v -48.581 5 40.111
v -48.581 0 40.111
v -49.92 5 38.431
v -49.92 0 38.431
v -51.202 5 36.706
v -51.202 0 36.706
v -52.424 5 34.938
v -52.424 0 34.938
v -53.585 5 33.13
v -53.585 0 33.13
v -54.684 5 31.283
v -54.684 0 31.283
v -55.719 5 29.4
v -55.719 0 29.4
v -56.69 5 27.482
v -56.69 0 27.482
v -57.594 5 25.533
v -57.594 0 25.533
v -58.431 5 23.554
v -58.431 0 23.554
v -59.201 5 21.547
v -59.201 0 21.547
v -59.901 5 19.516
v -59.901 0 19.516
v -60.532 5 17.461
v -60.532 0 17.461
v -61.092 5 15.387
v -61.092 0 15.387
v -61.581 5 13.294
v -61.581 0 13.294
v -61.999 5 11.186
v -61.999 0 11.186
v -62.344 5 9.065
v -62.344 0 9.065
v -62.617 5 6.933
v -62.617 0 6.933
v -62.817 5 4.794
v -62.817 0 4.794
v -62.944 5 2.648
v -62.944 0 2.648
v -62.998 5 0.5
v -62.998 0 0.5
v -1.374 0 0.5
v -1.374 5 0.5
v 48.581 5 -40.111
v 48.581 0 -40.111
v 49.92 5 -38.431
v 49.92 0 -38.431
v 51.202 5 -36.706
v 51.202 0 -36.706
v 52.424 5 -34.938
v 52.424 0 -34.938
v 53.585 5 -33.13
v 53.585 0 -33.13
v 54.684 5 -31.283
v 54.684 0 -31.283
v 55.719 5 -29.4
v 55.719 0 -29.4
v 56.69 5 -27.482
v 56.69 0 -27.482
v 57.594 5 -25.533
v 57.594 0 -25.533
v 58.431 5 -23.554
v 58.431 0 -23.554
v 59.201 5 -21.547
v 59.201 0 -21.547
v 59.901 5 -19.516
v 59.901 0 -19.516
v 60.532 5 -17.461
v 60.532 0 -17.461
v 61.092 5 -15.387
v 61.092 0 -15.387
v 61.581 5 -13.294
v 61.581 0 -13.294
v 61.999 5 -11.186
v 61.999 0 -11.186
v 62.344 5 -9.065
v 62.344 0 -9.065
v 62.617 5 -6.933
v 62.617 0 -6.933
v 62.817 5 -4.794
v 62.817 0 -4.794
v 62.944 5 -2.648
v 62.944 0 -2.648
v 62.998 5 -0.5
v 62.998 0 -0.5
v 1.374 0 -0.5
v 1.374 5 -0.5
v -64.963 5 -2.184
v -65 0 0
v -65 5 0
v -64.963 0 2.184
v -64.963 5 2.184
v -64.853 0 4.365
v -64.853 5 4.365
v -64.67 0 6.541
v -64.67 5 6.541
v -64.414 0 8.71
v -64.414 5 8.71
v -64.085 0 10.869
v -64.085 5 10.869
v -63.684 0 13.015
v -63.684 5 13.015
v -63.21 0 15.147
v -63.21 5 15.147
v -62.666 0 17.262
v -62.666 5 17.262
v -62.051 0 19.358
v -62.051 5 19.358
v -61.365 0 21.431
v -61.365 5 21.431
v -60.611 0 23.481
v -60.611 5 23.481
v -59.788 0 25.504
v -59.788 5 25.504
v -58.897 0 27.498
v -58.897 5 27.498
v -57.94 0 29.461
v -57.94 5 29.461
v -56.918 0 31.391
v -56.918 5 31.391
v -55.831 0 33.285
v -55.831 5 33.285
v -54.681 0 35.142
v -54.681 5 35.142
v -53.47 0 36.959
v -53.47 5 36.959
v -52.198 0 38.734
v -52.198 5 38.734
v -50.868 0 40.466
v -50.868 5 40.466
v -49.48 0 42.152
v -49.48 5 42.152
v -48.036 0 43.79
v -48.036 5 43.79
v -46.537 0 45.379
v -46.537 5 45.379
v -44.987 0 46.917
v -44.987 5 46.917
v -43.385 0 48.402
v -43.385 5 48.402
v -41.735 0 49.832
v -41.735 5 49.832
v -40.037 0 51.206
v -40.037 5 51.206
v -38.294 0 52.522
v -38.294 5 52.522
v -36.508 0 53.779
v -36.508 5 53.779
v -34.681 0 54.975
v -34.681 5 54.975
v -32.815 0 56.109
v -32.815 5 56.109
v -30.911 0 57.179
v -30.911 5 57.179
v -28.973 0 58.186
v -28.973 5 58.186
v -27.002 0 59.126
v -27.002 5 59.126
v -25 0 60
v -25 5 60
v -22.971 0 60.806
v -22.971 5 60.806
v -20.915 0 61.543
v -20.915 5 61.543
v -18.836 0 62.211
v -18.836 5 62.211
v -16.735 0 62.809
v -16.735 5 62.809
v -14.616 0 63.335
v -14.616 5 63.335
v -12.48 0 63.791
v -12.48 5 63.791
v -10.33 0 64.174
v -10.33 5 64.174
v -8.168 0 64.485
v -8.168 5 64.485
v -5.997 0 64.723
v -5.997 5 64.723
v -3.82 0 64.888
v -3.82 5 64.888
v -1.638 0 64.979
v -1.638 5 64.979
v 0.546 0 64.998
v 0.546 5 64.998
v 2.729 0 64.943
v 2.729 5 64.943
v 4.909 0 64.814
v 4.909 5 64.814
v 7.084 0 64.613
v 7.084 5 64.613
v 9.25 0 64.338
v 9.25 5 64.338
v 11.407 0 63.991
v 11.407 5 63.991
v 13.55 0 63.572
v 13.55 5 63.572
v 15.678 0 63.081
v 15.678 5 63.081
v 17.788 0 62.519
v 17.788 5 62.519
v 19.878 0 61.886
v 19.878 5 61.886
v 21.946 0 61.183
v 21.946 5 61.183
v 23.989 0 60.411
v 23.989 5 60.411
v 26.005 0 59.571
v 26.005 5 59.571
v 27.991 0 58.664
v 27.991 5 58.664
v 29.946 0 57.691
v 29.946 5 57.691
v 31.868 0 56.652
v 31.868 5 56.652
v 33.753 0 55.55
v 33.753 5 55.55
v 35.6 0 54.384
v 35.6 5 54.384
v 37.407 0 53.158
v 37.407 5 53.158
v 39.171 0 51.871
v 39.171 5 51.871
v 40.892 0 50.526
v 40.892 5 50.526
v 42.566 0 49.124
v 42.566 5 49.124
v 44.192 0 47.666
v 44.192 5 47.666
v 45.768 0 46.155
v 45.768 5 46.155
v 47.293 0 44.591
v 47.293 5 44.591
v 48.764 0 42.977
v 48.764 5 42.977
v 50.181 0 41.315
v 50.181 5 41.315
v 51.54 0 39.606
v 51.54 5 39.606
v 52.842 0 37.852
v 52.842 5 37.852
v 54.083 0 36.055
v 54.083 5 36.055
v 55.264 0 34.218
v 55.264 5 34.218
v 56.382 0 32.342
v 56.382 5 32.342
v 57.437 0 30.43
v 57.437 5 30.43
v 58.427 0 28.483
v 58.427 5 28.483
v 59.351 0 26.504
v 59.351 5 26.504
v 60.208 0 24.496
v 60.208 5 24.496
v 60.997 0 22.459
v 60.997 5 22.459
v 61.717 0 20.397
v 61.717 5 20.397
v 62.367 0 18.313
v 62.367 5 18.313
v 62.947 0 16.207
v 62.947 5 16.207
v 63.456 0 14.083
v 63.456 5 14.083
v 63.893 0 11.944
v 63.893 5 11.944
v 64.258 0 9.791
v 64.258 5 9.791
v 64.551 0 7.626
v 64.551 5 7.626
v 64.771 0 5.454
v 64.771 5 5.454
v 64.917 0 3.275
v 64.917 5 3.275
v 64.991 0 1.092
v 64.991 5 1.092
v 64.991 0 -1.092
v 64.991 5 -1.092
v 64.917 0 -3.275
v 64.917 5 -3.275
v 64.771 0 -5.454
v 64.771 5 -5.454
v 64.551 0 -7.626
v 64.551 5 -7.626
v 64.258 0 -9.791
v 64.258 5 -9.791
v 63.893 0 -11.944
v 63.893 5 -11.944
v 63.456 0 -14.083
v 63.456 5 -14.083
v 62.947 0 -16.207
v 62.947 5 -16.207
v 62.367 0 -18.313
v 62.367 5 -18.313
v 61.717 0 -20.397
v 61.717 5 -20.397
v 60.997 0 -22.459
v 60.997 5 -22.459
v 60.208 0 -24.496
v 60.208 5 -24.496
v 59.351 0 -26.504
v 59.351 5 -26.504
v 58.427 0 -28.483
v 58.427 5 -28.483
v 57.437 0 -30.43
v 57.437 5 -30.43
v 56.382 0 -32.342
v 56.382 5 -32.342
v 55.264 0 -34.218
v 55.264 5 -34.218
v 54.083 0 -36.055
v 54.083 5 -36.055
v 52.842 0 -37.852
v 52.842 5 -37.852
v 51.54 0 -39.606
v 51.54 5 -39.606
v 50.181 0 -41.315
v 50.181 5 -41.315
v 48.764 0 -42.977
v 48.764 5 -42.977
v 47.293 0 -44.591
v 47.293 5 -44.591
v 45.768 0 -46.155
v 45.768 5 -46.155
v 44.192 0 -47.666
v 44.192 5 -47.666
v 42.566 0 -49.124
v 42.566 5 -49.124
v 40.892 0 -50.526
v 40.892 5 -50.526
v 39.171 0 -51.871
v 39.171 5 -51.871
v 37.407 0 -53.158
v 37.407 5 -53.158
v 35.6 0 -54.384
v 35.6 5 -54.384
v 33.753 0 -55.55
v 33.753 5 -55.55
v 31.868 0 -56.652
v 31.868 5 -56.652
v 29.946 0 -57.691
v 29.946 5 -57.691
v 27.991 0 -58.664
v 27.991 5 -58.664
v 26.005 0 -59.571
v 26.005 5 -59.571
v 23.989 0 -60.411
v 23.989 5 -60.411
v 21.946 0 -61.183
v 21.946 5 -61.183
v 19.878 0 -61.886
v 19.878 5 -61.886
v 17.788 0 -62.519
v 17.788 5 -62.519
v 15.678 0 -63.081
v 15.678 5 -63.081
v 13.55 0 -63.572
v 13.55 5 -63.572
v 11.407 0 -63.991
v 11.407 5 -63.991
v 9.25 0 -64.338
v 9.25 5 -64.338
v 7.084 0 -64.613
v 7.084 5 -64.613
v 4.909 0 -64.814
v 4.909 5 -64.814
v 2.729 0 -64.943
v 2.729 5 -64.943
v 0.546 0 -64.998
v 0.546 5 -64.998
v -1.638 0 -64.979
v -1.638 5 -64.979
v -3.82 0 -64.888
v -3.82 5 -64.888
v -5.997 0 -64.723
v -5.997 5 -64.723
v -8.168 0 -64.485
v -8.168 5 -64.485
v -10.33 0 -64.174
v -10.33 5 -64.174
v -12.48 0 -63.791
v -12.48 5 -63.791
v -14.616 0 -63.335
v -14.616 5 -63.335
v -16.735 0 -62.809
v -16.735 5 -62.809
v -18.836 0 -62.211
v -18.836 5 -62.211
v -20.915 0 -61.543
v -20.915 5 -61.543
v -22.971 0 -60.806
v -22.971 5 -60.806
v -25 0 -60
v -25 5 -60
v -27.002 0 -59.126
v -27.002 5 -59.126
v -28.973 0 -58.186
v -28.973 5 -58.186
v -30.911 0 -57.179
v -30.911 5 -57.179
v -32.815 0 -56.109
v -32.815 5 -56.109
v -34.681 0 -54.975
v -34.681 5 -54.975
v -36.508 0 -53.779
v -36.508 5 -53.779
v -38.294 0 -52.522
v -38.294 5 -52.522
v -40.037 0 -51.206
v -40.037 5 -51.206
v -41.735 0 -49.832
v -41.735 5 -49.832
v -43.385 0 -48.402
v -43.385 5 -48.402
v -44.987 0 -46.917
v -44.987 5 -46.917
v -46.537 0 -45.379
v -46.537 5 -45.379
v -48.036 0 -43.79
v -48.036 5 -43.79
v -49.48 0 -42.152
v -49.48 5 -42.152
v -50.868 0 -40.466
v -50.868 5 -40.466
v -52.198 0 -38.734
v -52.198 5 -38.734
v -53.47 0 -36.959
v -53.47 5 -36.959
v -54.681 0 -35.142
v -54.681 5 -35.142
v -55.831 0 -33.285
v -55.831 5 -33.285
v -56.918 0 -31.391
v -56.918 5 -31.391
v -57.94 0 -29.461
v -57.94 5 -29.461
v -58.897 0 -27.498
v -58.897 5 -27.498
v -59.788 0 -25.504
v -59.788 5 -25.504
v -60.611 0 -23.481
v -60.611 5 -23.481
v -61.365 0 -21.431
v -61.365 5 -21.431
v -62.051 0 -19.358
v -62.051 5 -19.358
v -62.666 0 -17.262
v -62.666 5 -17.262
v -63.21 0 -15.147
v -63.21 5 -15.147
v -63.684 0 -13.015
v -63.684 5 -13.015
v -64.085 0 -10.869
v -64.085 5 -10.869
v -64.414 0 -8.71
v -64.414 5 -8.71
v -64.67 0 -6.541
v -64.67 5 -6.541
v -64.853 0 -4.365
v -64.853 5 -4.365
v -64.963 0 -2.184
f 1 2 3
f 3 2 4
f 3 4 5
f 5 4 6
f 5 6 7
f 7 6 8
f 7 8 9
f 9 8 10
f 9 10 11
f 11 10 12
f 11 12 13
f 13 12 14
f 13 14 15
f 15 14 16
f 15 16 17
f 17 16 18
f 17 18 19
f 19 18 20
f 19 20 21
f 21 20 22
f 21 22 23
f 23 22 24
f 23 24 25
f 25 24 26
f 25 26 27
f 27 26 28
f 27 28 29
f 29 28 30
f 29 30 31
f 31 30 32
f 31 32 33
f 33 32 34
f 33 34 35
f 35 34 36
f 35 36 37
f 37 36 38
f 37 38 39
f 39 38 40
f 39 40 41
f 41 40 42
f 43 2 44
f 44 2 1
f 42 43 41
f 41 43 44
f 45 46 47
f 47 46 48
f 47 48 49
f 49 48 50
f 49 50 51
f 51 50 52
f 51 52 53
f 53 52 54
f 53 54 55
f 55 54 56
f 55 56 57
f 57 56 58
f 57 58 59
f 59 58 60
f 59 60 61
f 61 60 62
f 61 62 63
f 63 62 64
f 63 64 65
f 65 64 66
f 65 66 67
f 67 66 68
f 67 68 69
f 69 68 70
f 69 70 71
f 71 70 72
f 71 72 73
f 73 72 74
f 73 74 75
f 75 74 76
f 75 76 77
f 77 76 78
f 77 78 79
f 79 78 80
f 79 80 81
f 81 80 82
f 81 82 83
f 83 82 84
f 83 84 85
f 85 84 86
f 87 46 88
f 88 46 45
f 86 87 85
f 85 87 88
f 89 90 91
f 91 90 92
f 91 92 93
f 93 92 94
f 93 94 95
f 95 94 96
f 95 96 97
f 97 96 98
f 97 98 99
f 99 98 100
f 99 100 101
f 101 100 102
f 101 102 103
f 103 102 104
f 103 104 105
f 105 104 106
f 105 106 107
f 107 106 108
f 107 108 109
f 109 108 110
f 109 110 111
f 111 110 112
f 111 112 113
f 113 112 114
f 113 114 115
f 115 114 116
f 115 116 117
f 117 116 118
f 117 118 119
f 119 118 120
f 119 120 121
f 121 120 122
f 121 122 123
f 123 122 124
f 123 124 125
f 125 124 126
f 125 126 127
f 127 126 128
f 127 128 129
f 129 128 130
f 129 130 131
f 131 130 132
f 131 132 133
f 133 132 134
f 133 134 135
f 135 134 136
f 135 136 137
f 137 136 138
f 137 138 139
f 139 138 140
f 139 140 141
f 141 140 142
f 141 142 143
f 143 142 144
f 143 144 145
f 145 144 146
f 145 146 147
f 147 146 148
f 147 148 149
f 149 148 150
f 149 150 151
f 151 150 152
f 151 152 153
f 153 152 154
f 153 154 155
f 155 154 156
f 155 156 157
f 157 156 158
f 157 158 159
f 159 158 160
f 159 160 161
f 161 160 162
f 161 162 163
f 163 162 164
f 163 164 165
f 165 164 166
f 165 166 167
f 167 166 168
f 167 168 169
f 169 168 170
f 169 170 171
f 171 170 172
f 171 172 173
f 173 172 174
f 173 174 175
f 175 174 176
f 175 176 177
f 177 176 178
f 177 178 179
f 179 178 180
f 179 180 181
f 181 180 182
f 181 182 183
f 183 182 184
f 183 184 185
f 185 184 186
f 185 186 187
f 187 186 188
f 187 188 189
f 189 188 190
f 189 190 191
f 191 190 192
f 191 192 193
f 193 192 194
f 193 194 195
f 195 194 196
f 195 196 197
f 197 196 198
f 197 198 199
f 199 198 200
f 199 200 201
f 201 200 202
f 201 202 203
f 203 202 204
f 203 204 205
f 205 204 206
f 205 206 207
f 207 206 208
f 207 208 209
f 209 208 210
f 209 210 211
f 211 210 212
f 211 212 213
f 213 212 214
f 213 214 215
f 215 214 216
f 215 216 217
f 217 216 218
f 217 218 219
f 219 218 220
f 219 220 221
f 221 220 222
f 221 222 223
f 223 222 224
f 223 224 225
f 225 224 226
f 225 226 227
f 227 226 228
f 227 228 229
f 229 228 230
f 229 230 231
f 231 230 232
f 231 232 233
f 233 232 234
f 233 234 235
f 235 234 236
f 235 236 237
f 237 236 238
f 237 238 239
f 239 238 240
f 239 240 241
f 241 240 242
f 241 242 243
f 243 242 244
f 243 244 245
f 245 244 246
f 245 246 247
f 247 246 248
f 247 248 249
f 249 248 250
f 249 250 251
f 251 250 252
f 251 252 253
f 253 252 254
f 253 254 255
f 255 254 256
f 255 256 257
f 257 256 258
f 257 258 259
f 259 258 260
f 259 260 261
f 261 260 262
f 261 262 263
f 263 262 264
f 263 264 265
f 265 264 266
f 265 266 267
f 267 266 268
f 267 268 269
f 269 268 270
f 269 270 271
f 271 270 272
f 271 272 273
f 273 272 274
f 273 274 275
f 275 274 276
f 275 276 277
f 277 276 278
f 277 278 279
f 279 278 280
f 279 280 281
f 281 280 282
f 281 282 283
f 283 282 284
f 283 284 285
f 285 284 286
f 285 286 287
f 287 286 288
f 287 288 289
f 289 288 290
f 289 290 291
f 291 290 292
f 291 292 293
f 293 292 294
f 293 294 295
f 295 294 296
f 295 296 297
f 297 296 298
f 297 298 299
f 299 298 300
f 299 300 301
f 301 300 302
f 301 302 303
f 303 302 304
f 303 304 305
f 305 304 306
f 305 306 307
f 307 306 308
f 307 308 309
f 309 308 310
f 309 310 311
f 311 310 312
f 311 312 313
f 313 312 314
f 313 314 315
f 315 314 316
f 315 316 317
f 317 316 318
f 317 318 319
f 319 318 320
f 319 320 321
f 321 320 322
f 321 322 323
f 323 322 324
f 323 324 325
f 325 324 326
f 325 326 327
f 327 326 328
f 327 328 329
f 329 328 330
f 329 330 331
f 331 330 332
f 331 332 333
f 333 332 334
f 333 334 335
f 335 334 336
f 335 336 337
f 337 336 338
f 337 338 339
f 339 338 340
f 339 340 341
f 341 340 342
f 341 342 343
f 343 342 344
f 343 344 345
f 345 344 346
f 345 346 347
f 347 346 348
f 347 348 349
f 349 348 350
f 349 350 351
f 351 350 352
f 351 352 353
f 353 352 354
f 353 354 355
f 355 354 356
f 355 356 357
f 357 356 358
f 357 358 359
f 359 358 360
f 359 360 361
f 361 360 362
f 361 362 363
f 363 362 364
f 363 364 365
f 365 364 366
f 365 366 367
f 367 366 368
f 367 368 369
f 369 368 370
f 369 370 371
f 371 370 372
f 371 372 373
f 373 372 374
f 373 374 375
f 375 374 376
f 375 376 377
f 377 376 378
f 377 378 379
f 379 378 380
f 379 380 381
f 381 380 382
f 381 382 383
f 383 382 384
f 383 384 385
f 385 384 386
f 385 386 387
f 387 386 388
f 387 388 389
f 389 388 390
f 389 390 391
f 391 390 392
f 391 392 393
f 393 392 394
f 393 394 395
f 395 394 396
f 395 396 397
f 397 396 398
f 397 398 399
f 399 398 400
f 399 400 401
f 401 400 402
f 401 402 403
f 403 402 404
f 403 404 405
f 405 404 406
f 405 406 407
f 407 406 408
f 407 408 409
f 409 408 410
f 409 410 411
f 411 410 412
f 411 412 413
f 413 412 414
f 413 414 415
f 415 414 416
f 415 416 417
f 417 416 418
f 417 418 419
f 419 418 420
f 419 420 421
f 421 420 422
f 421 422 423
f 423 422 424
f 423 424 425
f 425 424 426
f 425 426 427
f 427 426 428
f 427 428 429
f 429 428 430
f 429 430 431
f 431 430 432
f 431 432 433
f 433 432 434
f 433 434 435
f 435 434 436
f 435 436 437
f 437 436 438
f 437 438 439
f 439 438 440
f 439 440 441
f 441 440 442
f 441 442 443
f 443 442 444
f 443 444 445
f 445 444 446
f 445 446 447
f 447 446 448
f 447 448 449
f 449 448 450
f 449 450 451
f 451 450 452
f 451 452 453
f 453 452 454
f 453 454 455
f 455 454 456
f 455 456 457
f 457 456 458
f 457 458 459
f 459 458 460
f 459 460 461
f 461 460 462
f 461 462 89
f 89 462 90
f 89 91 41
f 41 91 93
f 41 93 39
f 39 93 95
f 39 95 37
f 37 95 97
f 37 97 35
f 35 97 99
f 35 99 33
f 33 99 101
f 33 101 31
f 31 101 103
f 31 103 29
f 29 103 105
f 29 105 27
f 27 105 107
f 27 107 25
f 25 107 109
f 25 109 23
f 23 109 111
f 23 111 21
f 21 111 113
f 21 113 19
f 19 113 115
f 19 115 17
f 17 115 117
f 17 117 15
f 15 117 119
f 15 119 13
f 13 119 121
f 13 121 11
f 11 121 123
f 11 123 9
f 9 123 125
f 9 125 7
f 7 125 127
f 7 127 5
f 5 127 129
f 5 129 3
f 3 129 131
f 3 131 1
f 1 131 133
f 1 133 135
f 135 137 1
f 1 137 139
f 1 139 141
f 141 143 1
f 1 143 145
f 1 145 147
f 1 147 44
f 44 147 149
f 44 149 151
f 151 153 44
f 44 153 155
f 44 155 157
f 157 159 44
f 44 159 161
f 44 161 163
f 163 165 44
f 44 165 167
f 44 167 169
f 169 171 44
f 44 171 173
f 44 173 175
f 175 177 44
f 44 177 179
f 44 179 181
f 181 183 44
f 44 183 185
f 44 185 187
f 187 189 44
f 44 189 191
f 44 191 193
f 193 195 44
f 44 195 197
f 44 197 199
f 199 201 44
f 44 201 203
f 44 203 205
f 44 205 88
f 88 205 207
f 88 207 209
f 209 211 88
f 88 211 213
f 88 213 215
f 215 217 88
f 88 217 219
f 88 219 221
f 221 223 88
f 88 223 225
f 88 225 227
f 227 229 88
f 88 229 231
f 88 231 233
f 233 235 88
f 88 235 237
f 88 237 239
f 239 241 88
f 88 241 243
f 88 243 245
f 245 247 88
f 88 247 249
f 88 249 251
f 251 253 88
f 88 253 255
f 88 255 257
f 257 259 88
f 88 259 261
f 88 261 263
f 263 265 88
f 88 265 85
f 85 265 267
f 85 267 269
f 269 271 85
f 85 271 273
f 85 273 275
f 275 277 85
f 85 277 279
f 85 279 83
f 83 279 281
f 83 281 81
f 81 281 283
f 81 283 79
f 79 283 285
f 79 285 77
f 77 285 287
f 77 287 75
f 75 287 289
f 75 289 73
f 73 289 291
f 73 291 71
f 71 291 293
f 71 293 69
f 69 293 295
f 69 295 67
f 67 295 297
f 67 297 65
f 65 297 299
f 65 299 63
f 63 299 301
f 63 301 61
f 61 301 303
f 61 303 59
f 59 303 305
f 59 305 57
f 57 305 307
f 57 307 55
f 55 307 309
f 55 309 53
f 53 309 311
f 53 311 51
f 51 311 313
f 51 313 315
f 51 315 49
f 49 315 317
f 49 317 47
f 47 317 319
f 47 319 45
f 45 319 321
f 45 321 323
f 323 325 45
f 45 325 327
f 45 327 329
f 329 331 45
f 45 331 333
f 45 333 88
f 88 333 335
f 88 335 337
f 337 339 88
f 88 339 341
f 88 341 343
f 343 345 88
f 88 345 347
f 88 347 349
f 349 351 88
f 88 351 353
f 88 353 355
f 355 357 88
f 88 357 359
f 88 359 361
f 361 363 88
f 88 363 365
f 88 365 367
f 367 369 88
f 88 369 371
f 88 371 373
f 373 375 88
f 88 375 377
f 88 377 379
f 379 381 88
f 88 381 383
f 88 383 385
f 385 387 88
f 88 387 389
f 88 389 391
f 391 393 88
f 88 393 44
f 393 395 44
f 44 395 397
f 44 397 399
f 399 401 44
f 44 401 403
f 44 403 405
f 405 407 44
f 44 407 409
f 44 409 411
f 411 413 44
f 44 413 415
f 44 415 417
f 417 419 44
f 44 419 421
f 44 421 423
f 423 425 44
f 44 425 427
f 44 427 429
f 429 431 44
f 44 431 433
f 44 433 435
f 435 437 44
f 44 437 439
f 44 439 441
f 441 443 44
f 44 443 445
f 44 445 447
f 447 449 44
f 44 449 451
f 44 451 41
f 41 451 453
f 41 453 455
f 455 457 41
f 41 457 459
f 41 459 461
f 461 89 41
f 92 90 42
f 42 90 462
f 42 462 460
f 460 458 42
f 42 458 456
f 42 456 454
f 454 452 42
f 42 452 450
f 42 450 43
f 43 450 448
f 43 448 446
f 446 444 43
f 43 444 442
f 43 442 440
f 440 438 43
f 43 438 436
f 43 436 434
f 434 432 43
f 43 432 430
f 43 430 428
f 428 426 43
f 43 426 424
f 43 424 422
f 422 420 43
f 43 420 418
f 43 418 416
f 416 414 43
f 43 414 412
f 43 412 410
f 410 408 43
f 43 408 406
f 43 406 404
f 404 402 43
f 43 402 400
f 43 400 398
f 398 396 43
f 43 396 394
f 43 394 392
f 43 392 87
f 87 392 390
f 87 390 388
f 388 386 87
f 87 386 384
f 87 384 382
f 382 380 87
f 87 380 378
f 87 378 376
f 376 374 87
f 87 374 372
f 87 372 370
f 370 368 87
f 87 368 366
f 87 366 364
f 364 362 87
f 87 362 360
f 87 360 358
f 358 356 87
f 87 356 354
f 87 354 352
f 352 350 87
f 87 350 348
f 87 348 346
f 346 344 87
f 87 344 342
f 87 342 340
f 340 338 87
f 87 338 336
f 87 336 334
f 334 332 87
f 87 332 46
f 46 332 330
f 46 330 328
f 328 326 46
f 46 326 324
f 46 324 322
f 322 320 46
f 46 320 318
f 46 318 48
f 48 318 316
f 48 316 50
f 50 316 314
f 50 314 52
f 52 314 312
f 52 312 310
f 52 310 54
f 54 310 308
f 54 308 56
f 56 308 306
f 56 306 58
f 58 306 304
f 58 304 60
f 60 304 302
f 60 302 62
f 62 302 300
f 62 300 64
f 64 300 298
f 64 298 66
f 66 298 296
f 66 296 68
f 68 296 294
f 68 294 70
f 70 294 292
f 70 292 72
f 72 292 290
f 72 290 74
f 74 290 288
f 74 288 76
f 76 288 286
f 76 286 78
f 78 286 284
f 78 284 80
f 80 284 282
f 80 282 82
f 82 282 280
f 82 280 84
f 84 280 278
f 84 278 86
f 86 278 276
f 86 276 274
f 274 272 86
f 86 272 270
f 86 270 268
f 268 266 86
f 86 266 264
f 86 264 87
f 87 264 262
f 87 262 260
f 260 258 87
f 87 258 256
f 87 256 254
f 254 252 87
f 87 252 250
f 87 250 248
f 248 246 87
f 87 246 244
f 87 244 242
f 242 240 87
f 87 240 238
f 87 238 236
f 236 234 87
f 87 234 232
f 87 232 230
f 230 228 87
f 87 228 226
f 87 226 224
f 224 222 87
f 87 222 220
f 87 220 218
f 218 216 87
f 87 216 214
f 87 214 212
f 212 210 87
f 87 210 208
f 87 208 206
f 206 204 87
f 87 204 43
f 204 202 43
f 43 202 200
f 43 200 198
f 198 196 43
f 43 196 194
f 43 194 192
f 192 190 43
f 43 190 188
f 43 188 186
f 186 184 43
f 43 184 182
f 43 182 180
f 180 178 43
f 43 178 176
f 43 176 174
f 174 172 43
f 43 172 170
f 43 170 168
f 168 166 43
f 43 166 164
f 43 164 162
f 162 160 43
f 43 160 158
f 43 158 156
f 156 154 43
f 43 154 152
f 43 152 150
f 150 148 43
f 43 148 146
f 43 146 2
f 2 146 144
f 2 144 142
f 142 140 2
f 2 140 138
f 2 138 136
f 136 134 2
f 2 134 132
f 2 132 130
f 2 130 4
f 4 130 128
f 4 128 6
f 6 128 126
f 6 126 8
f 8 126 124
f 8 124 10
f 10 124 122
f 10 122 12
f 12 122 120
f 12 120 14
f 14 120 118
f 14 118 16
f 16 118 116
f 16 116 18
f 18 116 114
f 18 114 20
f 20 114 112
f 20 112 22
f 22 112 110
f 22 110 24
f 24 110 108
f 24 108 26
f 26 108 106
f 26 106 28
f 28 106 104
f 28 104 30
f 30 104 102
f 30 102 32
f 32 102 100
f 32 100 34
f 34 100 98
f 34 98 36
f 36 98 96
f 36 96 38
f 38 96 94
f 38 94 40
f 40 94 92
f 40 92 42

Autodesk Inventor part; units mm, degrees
ref_plane "YZ Plane" through (0, 0, 0) normal (1, 0, 0) x (0, 1, 0)
ref_plane "XZ Plane" through (0, 0, 0) normal (0, 1, 0) x (-1, 0, 0)
ref_plane "XY Plane" through (0, 0, 0) normal (0, 0, 1) x (1, 0, 0)
sketch "Эскиз1" plane through (0, 0, 0) normal (0, 1, 0) x (-1, 0, 0)
  circle A0 centre (0, 0) radius 65
  line L0 (0.182, -0.5) -> (62.998, -0.5)
  line L1 (62.998, 0.5) -> (1.3737, 0.5)
  line L2 (1.3737, 0.5) -> (48.5807, 40.1113)
  line L3 (47.9379, 40.8774) -> (-0.182, 0.5)
  line L4 (-0.182, 0.5) -> (-62.998, 0.5)
  line L5 (-62.998, -0.5) -> (-1.3737, -0.5)
  line L6 (-1.3737, -0.5) -> (-48.5807, -40.1113)
  line L7 (-47.9379, -40.8774) -> (0.182, -0.5)
  arc A1 (-62.998, -0.5) -> (-48.5807, -40.1113) centre (0, 0) ccw
  arc A2 (47.9379, 40.8774) -> (-62.998, 0.5) centre (0, 0) ccw
  arc A3 (-47.9379, -40.8774) -> (62.998, -0.5) centre (0, 0) ccw
  arc A4 (62.998, 0.5) -> (48.5807, 40.1113) centre (0, 0) ccw
  dimension "d1" = 130
extrude "Выдавливание1" add sketch "Эскиз1" along normal blind 5 contours A0 | L0 A3 L7 | L3 L4 A2
